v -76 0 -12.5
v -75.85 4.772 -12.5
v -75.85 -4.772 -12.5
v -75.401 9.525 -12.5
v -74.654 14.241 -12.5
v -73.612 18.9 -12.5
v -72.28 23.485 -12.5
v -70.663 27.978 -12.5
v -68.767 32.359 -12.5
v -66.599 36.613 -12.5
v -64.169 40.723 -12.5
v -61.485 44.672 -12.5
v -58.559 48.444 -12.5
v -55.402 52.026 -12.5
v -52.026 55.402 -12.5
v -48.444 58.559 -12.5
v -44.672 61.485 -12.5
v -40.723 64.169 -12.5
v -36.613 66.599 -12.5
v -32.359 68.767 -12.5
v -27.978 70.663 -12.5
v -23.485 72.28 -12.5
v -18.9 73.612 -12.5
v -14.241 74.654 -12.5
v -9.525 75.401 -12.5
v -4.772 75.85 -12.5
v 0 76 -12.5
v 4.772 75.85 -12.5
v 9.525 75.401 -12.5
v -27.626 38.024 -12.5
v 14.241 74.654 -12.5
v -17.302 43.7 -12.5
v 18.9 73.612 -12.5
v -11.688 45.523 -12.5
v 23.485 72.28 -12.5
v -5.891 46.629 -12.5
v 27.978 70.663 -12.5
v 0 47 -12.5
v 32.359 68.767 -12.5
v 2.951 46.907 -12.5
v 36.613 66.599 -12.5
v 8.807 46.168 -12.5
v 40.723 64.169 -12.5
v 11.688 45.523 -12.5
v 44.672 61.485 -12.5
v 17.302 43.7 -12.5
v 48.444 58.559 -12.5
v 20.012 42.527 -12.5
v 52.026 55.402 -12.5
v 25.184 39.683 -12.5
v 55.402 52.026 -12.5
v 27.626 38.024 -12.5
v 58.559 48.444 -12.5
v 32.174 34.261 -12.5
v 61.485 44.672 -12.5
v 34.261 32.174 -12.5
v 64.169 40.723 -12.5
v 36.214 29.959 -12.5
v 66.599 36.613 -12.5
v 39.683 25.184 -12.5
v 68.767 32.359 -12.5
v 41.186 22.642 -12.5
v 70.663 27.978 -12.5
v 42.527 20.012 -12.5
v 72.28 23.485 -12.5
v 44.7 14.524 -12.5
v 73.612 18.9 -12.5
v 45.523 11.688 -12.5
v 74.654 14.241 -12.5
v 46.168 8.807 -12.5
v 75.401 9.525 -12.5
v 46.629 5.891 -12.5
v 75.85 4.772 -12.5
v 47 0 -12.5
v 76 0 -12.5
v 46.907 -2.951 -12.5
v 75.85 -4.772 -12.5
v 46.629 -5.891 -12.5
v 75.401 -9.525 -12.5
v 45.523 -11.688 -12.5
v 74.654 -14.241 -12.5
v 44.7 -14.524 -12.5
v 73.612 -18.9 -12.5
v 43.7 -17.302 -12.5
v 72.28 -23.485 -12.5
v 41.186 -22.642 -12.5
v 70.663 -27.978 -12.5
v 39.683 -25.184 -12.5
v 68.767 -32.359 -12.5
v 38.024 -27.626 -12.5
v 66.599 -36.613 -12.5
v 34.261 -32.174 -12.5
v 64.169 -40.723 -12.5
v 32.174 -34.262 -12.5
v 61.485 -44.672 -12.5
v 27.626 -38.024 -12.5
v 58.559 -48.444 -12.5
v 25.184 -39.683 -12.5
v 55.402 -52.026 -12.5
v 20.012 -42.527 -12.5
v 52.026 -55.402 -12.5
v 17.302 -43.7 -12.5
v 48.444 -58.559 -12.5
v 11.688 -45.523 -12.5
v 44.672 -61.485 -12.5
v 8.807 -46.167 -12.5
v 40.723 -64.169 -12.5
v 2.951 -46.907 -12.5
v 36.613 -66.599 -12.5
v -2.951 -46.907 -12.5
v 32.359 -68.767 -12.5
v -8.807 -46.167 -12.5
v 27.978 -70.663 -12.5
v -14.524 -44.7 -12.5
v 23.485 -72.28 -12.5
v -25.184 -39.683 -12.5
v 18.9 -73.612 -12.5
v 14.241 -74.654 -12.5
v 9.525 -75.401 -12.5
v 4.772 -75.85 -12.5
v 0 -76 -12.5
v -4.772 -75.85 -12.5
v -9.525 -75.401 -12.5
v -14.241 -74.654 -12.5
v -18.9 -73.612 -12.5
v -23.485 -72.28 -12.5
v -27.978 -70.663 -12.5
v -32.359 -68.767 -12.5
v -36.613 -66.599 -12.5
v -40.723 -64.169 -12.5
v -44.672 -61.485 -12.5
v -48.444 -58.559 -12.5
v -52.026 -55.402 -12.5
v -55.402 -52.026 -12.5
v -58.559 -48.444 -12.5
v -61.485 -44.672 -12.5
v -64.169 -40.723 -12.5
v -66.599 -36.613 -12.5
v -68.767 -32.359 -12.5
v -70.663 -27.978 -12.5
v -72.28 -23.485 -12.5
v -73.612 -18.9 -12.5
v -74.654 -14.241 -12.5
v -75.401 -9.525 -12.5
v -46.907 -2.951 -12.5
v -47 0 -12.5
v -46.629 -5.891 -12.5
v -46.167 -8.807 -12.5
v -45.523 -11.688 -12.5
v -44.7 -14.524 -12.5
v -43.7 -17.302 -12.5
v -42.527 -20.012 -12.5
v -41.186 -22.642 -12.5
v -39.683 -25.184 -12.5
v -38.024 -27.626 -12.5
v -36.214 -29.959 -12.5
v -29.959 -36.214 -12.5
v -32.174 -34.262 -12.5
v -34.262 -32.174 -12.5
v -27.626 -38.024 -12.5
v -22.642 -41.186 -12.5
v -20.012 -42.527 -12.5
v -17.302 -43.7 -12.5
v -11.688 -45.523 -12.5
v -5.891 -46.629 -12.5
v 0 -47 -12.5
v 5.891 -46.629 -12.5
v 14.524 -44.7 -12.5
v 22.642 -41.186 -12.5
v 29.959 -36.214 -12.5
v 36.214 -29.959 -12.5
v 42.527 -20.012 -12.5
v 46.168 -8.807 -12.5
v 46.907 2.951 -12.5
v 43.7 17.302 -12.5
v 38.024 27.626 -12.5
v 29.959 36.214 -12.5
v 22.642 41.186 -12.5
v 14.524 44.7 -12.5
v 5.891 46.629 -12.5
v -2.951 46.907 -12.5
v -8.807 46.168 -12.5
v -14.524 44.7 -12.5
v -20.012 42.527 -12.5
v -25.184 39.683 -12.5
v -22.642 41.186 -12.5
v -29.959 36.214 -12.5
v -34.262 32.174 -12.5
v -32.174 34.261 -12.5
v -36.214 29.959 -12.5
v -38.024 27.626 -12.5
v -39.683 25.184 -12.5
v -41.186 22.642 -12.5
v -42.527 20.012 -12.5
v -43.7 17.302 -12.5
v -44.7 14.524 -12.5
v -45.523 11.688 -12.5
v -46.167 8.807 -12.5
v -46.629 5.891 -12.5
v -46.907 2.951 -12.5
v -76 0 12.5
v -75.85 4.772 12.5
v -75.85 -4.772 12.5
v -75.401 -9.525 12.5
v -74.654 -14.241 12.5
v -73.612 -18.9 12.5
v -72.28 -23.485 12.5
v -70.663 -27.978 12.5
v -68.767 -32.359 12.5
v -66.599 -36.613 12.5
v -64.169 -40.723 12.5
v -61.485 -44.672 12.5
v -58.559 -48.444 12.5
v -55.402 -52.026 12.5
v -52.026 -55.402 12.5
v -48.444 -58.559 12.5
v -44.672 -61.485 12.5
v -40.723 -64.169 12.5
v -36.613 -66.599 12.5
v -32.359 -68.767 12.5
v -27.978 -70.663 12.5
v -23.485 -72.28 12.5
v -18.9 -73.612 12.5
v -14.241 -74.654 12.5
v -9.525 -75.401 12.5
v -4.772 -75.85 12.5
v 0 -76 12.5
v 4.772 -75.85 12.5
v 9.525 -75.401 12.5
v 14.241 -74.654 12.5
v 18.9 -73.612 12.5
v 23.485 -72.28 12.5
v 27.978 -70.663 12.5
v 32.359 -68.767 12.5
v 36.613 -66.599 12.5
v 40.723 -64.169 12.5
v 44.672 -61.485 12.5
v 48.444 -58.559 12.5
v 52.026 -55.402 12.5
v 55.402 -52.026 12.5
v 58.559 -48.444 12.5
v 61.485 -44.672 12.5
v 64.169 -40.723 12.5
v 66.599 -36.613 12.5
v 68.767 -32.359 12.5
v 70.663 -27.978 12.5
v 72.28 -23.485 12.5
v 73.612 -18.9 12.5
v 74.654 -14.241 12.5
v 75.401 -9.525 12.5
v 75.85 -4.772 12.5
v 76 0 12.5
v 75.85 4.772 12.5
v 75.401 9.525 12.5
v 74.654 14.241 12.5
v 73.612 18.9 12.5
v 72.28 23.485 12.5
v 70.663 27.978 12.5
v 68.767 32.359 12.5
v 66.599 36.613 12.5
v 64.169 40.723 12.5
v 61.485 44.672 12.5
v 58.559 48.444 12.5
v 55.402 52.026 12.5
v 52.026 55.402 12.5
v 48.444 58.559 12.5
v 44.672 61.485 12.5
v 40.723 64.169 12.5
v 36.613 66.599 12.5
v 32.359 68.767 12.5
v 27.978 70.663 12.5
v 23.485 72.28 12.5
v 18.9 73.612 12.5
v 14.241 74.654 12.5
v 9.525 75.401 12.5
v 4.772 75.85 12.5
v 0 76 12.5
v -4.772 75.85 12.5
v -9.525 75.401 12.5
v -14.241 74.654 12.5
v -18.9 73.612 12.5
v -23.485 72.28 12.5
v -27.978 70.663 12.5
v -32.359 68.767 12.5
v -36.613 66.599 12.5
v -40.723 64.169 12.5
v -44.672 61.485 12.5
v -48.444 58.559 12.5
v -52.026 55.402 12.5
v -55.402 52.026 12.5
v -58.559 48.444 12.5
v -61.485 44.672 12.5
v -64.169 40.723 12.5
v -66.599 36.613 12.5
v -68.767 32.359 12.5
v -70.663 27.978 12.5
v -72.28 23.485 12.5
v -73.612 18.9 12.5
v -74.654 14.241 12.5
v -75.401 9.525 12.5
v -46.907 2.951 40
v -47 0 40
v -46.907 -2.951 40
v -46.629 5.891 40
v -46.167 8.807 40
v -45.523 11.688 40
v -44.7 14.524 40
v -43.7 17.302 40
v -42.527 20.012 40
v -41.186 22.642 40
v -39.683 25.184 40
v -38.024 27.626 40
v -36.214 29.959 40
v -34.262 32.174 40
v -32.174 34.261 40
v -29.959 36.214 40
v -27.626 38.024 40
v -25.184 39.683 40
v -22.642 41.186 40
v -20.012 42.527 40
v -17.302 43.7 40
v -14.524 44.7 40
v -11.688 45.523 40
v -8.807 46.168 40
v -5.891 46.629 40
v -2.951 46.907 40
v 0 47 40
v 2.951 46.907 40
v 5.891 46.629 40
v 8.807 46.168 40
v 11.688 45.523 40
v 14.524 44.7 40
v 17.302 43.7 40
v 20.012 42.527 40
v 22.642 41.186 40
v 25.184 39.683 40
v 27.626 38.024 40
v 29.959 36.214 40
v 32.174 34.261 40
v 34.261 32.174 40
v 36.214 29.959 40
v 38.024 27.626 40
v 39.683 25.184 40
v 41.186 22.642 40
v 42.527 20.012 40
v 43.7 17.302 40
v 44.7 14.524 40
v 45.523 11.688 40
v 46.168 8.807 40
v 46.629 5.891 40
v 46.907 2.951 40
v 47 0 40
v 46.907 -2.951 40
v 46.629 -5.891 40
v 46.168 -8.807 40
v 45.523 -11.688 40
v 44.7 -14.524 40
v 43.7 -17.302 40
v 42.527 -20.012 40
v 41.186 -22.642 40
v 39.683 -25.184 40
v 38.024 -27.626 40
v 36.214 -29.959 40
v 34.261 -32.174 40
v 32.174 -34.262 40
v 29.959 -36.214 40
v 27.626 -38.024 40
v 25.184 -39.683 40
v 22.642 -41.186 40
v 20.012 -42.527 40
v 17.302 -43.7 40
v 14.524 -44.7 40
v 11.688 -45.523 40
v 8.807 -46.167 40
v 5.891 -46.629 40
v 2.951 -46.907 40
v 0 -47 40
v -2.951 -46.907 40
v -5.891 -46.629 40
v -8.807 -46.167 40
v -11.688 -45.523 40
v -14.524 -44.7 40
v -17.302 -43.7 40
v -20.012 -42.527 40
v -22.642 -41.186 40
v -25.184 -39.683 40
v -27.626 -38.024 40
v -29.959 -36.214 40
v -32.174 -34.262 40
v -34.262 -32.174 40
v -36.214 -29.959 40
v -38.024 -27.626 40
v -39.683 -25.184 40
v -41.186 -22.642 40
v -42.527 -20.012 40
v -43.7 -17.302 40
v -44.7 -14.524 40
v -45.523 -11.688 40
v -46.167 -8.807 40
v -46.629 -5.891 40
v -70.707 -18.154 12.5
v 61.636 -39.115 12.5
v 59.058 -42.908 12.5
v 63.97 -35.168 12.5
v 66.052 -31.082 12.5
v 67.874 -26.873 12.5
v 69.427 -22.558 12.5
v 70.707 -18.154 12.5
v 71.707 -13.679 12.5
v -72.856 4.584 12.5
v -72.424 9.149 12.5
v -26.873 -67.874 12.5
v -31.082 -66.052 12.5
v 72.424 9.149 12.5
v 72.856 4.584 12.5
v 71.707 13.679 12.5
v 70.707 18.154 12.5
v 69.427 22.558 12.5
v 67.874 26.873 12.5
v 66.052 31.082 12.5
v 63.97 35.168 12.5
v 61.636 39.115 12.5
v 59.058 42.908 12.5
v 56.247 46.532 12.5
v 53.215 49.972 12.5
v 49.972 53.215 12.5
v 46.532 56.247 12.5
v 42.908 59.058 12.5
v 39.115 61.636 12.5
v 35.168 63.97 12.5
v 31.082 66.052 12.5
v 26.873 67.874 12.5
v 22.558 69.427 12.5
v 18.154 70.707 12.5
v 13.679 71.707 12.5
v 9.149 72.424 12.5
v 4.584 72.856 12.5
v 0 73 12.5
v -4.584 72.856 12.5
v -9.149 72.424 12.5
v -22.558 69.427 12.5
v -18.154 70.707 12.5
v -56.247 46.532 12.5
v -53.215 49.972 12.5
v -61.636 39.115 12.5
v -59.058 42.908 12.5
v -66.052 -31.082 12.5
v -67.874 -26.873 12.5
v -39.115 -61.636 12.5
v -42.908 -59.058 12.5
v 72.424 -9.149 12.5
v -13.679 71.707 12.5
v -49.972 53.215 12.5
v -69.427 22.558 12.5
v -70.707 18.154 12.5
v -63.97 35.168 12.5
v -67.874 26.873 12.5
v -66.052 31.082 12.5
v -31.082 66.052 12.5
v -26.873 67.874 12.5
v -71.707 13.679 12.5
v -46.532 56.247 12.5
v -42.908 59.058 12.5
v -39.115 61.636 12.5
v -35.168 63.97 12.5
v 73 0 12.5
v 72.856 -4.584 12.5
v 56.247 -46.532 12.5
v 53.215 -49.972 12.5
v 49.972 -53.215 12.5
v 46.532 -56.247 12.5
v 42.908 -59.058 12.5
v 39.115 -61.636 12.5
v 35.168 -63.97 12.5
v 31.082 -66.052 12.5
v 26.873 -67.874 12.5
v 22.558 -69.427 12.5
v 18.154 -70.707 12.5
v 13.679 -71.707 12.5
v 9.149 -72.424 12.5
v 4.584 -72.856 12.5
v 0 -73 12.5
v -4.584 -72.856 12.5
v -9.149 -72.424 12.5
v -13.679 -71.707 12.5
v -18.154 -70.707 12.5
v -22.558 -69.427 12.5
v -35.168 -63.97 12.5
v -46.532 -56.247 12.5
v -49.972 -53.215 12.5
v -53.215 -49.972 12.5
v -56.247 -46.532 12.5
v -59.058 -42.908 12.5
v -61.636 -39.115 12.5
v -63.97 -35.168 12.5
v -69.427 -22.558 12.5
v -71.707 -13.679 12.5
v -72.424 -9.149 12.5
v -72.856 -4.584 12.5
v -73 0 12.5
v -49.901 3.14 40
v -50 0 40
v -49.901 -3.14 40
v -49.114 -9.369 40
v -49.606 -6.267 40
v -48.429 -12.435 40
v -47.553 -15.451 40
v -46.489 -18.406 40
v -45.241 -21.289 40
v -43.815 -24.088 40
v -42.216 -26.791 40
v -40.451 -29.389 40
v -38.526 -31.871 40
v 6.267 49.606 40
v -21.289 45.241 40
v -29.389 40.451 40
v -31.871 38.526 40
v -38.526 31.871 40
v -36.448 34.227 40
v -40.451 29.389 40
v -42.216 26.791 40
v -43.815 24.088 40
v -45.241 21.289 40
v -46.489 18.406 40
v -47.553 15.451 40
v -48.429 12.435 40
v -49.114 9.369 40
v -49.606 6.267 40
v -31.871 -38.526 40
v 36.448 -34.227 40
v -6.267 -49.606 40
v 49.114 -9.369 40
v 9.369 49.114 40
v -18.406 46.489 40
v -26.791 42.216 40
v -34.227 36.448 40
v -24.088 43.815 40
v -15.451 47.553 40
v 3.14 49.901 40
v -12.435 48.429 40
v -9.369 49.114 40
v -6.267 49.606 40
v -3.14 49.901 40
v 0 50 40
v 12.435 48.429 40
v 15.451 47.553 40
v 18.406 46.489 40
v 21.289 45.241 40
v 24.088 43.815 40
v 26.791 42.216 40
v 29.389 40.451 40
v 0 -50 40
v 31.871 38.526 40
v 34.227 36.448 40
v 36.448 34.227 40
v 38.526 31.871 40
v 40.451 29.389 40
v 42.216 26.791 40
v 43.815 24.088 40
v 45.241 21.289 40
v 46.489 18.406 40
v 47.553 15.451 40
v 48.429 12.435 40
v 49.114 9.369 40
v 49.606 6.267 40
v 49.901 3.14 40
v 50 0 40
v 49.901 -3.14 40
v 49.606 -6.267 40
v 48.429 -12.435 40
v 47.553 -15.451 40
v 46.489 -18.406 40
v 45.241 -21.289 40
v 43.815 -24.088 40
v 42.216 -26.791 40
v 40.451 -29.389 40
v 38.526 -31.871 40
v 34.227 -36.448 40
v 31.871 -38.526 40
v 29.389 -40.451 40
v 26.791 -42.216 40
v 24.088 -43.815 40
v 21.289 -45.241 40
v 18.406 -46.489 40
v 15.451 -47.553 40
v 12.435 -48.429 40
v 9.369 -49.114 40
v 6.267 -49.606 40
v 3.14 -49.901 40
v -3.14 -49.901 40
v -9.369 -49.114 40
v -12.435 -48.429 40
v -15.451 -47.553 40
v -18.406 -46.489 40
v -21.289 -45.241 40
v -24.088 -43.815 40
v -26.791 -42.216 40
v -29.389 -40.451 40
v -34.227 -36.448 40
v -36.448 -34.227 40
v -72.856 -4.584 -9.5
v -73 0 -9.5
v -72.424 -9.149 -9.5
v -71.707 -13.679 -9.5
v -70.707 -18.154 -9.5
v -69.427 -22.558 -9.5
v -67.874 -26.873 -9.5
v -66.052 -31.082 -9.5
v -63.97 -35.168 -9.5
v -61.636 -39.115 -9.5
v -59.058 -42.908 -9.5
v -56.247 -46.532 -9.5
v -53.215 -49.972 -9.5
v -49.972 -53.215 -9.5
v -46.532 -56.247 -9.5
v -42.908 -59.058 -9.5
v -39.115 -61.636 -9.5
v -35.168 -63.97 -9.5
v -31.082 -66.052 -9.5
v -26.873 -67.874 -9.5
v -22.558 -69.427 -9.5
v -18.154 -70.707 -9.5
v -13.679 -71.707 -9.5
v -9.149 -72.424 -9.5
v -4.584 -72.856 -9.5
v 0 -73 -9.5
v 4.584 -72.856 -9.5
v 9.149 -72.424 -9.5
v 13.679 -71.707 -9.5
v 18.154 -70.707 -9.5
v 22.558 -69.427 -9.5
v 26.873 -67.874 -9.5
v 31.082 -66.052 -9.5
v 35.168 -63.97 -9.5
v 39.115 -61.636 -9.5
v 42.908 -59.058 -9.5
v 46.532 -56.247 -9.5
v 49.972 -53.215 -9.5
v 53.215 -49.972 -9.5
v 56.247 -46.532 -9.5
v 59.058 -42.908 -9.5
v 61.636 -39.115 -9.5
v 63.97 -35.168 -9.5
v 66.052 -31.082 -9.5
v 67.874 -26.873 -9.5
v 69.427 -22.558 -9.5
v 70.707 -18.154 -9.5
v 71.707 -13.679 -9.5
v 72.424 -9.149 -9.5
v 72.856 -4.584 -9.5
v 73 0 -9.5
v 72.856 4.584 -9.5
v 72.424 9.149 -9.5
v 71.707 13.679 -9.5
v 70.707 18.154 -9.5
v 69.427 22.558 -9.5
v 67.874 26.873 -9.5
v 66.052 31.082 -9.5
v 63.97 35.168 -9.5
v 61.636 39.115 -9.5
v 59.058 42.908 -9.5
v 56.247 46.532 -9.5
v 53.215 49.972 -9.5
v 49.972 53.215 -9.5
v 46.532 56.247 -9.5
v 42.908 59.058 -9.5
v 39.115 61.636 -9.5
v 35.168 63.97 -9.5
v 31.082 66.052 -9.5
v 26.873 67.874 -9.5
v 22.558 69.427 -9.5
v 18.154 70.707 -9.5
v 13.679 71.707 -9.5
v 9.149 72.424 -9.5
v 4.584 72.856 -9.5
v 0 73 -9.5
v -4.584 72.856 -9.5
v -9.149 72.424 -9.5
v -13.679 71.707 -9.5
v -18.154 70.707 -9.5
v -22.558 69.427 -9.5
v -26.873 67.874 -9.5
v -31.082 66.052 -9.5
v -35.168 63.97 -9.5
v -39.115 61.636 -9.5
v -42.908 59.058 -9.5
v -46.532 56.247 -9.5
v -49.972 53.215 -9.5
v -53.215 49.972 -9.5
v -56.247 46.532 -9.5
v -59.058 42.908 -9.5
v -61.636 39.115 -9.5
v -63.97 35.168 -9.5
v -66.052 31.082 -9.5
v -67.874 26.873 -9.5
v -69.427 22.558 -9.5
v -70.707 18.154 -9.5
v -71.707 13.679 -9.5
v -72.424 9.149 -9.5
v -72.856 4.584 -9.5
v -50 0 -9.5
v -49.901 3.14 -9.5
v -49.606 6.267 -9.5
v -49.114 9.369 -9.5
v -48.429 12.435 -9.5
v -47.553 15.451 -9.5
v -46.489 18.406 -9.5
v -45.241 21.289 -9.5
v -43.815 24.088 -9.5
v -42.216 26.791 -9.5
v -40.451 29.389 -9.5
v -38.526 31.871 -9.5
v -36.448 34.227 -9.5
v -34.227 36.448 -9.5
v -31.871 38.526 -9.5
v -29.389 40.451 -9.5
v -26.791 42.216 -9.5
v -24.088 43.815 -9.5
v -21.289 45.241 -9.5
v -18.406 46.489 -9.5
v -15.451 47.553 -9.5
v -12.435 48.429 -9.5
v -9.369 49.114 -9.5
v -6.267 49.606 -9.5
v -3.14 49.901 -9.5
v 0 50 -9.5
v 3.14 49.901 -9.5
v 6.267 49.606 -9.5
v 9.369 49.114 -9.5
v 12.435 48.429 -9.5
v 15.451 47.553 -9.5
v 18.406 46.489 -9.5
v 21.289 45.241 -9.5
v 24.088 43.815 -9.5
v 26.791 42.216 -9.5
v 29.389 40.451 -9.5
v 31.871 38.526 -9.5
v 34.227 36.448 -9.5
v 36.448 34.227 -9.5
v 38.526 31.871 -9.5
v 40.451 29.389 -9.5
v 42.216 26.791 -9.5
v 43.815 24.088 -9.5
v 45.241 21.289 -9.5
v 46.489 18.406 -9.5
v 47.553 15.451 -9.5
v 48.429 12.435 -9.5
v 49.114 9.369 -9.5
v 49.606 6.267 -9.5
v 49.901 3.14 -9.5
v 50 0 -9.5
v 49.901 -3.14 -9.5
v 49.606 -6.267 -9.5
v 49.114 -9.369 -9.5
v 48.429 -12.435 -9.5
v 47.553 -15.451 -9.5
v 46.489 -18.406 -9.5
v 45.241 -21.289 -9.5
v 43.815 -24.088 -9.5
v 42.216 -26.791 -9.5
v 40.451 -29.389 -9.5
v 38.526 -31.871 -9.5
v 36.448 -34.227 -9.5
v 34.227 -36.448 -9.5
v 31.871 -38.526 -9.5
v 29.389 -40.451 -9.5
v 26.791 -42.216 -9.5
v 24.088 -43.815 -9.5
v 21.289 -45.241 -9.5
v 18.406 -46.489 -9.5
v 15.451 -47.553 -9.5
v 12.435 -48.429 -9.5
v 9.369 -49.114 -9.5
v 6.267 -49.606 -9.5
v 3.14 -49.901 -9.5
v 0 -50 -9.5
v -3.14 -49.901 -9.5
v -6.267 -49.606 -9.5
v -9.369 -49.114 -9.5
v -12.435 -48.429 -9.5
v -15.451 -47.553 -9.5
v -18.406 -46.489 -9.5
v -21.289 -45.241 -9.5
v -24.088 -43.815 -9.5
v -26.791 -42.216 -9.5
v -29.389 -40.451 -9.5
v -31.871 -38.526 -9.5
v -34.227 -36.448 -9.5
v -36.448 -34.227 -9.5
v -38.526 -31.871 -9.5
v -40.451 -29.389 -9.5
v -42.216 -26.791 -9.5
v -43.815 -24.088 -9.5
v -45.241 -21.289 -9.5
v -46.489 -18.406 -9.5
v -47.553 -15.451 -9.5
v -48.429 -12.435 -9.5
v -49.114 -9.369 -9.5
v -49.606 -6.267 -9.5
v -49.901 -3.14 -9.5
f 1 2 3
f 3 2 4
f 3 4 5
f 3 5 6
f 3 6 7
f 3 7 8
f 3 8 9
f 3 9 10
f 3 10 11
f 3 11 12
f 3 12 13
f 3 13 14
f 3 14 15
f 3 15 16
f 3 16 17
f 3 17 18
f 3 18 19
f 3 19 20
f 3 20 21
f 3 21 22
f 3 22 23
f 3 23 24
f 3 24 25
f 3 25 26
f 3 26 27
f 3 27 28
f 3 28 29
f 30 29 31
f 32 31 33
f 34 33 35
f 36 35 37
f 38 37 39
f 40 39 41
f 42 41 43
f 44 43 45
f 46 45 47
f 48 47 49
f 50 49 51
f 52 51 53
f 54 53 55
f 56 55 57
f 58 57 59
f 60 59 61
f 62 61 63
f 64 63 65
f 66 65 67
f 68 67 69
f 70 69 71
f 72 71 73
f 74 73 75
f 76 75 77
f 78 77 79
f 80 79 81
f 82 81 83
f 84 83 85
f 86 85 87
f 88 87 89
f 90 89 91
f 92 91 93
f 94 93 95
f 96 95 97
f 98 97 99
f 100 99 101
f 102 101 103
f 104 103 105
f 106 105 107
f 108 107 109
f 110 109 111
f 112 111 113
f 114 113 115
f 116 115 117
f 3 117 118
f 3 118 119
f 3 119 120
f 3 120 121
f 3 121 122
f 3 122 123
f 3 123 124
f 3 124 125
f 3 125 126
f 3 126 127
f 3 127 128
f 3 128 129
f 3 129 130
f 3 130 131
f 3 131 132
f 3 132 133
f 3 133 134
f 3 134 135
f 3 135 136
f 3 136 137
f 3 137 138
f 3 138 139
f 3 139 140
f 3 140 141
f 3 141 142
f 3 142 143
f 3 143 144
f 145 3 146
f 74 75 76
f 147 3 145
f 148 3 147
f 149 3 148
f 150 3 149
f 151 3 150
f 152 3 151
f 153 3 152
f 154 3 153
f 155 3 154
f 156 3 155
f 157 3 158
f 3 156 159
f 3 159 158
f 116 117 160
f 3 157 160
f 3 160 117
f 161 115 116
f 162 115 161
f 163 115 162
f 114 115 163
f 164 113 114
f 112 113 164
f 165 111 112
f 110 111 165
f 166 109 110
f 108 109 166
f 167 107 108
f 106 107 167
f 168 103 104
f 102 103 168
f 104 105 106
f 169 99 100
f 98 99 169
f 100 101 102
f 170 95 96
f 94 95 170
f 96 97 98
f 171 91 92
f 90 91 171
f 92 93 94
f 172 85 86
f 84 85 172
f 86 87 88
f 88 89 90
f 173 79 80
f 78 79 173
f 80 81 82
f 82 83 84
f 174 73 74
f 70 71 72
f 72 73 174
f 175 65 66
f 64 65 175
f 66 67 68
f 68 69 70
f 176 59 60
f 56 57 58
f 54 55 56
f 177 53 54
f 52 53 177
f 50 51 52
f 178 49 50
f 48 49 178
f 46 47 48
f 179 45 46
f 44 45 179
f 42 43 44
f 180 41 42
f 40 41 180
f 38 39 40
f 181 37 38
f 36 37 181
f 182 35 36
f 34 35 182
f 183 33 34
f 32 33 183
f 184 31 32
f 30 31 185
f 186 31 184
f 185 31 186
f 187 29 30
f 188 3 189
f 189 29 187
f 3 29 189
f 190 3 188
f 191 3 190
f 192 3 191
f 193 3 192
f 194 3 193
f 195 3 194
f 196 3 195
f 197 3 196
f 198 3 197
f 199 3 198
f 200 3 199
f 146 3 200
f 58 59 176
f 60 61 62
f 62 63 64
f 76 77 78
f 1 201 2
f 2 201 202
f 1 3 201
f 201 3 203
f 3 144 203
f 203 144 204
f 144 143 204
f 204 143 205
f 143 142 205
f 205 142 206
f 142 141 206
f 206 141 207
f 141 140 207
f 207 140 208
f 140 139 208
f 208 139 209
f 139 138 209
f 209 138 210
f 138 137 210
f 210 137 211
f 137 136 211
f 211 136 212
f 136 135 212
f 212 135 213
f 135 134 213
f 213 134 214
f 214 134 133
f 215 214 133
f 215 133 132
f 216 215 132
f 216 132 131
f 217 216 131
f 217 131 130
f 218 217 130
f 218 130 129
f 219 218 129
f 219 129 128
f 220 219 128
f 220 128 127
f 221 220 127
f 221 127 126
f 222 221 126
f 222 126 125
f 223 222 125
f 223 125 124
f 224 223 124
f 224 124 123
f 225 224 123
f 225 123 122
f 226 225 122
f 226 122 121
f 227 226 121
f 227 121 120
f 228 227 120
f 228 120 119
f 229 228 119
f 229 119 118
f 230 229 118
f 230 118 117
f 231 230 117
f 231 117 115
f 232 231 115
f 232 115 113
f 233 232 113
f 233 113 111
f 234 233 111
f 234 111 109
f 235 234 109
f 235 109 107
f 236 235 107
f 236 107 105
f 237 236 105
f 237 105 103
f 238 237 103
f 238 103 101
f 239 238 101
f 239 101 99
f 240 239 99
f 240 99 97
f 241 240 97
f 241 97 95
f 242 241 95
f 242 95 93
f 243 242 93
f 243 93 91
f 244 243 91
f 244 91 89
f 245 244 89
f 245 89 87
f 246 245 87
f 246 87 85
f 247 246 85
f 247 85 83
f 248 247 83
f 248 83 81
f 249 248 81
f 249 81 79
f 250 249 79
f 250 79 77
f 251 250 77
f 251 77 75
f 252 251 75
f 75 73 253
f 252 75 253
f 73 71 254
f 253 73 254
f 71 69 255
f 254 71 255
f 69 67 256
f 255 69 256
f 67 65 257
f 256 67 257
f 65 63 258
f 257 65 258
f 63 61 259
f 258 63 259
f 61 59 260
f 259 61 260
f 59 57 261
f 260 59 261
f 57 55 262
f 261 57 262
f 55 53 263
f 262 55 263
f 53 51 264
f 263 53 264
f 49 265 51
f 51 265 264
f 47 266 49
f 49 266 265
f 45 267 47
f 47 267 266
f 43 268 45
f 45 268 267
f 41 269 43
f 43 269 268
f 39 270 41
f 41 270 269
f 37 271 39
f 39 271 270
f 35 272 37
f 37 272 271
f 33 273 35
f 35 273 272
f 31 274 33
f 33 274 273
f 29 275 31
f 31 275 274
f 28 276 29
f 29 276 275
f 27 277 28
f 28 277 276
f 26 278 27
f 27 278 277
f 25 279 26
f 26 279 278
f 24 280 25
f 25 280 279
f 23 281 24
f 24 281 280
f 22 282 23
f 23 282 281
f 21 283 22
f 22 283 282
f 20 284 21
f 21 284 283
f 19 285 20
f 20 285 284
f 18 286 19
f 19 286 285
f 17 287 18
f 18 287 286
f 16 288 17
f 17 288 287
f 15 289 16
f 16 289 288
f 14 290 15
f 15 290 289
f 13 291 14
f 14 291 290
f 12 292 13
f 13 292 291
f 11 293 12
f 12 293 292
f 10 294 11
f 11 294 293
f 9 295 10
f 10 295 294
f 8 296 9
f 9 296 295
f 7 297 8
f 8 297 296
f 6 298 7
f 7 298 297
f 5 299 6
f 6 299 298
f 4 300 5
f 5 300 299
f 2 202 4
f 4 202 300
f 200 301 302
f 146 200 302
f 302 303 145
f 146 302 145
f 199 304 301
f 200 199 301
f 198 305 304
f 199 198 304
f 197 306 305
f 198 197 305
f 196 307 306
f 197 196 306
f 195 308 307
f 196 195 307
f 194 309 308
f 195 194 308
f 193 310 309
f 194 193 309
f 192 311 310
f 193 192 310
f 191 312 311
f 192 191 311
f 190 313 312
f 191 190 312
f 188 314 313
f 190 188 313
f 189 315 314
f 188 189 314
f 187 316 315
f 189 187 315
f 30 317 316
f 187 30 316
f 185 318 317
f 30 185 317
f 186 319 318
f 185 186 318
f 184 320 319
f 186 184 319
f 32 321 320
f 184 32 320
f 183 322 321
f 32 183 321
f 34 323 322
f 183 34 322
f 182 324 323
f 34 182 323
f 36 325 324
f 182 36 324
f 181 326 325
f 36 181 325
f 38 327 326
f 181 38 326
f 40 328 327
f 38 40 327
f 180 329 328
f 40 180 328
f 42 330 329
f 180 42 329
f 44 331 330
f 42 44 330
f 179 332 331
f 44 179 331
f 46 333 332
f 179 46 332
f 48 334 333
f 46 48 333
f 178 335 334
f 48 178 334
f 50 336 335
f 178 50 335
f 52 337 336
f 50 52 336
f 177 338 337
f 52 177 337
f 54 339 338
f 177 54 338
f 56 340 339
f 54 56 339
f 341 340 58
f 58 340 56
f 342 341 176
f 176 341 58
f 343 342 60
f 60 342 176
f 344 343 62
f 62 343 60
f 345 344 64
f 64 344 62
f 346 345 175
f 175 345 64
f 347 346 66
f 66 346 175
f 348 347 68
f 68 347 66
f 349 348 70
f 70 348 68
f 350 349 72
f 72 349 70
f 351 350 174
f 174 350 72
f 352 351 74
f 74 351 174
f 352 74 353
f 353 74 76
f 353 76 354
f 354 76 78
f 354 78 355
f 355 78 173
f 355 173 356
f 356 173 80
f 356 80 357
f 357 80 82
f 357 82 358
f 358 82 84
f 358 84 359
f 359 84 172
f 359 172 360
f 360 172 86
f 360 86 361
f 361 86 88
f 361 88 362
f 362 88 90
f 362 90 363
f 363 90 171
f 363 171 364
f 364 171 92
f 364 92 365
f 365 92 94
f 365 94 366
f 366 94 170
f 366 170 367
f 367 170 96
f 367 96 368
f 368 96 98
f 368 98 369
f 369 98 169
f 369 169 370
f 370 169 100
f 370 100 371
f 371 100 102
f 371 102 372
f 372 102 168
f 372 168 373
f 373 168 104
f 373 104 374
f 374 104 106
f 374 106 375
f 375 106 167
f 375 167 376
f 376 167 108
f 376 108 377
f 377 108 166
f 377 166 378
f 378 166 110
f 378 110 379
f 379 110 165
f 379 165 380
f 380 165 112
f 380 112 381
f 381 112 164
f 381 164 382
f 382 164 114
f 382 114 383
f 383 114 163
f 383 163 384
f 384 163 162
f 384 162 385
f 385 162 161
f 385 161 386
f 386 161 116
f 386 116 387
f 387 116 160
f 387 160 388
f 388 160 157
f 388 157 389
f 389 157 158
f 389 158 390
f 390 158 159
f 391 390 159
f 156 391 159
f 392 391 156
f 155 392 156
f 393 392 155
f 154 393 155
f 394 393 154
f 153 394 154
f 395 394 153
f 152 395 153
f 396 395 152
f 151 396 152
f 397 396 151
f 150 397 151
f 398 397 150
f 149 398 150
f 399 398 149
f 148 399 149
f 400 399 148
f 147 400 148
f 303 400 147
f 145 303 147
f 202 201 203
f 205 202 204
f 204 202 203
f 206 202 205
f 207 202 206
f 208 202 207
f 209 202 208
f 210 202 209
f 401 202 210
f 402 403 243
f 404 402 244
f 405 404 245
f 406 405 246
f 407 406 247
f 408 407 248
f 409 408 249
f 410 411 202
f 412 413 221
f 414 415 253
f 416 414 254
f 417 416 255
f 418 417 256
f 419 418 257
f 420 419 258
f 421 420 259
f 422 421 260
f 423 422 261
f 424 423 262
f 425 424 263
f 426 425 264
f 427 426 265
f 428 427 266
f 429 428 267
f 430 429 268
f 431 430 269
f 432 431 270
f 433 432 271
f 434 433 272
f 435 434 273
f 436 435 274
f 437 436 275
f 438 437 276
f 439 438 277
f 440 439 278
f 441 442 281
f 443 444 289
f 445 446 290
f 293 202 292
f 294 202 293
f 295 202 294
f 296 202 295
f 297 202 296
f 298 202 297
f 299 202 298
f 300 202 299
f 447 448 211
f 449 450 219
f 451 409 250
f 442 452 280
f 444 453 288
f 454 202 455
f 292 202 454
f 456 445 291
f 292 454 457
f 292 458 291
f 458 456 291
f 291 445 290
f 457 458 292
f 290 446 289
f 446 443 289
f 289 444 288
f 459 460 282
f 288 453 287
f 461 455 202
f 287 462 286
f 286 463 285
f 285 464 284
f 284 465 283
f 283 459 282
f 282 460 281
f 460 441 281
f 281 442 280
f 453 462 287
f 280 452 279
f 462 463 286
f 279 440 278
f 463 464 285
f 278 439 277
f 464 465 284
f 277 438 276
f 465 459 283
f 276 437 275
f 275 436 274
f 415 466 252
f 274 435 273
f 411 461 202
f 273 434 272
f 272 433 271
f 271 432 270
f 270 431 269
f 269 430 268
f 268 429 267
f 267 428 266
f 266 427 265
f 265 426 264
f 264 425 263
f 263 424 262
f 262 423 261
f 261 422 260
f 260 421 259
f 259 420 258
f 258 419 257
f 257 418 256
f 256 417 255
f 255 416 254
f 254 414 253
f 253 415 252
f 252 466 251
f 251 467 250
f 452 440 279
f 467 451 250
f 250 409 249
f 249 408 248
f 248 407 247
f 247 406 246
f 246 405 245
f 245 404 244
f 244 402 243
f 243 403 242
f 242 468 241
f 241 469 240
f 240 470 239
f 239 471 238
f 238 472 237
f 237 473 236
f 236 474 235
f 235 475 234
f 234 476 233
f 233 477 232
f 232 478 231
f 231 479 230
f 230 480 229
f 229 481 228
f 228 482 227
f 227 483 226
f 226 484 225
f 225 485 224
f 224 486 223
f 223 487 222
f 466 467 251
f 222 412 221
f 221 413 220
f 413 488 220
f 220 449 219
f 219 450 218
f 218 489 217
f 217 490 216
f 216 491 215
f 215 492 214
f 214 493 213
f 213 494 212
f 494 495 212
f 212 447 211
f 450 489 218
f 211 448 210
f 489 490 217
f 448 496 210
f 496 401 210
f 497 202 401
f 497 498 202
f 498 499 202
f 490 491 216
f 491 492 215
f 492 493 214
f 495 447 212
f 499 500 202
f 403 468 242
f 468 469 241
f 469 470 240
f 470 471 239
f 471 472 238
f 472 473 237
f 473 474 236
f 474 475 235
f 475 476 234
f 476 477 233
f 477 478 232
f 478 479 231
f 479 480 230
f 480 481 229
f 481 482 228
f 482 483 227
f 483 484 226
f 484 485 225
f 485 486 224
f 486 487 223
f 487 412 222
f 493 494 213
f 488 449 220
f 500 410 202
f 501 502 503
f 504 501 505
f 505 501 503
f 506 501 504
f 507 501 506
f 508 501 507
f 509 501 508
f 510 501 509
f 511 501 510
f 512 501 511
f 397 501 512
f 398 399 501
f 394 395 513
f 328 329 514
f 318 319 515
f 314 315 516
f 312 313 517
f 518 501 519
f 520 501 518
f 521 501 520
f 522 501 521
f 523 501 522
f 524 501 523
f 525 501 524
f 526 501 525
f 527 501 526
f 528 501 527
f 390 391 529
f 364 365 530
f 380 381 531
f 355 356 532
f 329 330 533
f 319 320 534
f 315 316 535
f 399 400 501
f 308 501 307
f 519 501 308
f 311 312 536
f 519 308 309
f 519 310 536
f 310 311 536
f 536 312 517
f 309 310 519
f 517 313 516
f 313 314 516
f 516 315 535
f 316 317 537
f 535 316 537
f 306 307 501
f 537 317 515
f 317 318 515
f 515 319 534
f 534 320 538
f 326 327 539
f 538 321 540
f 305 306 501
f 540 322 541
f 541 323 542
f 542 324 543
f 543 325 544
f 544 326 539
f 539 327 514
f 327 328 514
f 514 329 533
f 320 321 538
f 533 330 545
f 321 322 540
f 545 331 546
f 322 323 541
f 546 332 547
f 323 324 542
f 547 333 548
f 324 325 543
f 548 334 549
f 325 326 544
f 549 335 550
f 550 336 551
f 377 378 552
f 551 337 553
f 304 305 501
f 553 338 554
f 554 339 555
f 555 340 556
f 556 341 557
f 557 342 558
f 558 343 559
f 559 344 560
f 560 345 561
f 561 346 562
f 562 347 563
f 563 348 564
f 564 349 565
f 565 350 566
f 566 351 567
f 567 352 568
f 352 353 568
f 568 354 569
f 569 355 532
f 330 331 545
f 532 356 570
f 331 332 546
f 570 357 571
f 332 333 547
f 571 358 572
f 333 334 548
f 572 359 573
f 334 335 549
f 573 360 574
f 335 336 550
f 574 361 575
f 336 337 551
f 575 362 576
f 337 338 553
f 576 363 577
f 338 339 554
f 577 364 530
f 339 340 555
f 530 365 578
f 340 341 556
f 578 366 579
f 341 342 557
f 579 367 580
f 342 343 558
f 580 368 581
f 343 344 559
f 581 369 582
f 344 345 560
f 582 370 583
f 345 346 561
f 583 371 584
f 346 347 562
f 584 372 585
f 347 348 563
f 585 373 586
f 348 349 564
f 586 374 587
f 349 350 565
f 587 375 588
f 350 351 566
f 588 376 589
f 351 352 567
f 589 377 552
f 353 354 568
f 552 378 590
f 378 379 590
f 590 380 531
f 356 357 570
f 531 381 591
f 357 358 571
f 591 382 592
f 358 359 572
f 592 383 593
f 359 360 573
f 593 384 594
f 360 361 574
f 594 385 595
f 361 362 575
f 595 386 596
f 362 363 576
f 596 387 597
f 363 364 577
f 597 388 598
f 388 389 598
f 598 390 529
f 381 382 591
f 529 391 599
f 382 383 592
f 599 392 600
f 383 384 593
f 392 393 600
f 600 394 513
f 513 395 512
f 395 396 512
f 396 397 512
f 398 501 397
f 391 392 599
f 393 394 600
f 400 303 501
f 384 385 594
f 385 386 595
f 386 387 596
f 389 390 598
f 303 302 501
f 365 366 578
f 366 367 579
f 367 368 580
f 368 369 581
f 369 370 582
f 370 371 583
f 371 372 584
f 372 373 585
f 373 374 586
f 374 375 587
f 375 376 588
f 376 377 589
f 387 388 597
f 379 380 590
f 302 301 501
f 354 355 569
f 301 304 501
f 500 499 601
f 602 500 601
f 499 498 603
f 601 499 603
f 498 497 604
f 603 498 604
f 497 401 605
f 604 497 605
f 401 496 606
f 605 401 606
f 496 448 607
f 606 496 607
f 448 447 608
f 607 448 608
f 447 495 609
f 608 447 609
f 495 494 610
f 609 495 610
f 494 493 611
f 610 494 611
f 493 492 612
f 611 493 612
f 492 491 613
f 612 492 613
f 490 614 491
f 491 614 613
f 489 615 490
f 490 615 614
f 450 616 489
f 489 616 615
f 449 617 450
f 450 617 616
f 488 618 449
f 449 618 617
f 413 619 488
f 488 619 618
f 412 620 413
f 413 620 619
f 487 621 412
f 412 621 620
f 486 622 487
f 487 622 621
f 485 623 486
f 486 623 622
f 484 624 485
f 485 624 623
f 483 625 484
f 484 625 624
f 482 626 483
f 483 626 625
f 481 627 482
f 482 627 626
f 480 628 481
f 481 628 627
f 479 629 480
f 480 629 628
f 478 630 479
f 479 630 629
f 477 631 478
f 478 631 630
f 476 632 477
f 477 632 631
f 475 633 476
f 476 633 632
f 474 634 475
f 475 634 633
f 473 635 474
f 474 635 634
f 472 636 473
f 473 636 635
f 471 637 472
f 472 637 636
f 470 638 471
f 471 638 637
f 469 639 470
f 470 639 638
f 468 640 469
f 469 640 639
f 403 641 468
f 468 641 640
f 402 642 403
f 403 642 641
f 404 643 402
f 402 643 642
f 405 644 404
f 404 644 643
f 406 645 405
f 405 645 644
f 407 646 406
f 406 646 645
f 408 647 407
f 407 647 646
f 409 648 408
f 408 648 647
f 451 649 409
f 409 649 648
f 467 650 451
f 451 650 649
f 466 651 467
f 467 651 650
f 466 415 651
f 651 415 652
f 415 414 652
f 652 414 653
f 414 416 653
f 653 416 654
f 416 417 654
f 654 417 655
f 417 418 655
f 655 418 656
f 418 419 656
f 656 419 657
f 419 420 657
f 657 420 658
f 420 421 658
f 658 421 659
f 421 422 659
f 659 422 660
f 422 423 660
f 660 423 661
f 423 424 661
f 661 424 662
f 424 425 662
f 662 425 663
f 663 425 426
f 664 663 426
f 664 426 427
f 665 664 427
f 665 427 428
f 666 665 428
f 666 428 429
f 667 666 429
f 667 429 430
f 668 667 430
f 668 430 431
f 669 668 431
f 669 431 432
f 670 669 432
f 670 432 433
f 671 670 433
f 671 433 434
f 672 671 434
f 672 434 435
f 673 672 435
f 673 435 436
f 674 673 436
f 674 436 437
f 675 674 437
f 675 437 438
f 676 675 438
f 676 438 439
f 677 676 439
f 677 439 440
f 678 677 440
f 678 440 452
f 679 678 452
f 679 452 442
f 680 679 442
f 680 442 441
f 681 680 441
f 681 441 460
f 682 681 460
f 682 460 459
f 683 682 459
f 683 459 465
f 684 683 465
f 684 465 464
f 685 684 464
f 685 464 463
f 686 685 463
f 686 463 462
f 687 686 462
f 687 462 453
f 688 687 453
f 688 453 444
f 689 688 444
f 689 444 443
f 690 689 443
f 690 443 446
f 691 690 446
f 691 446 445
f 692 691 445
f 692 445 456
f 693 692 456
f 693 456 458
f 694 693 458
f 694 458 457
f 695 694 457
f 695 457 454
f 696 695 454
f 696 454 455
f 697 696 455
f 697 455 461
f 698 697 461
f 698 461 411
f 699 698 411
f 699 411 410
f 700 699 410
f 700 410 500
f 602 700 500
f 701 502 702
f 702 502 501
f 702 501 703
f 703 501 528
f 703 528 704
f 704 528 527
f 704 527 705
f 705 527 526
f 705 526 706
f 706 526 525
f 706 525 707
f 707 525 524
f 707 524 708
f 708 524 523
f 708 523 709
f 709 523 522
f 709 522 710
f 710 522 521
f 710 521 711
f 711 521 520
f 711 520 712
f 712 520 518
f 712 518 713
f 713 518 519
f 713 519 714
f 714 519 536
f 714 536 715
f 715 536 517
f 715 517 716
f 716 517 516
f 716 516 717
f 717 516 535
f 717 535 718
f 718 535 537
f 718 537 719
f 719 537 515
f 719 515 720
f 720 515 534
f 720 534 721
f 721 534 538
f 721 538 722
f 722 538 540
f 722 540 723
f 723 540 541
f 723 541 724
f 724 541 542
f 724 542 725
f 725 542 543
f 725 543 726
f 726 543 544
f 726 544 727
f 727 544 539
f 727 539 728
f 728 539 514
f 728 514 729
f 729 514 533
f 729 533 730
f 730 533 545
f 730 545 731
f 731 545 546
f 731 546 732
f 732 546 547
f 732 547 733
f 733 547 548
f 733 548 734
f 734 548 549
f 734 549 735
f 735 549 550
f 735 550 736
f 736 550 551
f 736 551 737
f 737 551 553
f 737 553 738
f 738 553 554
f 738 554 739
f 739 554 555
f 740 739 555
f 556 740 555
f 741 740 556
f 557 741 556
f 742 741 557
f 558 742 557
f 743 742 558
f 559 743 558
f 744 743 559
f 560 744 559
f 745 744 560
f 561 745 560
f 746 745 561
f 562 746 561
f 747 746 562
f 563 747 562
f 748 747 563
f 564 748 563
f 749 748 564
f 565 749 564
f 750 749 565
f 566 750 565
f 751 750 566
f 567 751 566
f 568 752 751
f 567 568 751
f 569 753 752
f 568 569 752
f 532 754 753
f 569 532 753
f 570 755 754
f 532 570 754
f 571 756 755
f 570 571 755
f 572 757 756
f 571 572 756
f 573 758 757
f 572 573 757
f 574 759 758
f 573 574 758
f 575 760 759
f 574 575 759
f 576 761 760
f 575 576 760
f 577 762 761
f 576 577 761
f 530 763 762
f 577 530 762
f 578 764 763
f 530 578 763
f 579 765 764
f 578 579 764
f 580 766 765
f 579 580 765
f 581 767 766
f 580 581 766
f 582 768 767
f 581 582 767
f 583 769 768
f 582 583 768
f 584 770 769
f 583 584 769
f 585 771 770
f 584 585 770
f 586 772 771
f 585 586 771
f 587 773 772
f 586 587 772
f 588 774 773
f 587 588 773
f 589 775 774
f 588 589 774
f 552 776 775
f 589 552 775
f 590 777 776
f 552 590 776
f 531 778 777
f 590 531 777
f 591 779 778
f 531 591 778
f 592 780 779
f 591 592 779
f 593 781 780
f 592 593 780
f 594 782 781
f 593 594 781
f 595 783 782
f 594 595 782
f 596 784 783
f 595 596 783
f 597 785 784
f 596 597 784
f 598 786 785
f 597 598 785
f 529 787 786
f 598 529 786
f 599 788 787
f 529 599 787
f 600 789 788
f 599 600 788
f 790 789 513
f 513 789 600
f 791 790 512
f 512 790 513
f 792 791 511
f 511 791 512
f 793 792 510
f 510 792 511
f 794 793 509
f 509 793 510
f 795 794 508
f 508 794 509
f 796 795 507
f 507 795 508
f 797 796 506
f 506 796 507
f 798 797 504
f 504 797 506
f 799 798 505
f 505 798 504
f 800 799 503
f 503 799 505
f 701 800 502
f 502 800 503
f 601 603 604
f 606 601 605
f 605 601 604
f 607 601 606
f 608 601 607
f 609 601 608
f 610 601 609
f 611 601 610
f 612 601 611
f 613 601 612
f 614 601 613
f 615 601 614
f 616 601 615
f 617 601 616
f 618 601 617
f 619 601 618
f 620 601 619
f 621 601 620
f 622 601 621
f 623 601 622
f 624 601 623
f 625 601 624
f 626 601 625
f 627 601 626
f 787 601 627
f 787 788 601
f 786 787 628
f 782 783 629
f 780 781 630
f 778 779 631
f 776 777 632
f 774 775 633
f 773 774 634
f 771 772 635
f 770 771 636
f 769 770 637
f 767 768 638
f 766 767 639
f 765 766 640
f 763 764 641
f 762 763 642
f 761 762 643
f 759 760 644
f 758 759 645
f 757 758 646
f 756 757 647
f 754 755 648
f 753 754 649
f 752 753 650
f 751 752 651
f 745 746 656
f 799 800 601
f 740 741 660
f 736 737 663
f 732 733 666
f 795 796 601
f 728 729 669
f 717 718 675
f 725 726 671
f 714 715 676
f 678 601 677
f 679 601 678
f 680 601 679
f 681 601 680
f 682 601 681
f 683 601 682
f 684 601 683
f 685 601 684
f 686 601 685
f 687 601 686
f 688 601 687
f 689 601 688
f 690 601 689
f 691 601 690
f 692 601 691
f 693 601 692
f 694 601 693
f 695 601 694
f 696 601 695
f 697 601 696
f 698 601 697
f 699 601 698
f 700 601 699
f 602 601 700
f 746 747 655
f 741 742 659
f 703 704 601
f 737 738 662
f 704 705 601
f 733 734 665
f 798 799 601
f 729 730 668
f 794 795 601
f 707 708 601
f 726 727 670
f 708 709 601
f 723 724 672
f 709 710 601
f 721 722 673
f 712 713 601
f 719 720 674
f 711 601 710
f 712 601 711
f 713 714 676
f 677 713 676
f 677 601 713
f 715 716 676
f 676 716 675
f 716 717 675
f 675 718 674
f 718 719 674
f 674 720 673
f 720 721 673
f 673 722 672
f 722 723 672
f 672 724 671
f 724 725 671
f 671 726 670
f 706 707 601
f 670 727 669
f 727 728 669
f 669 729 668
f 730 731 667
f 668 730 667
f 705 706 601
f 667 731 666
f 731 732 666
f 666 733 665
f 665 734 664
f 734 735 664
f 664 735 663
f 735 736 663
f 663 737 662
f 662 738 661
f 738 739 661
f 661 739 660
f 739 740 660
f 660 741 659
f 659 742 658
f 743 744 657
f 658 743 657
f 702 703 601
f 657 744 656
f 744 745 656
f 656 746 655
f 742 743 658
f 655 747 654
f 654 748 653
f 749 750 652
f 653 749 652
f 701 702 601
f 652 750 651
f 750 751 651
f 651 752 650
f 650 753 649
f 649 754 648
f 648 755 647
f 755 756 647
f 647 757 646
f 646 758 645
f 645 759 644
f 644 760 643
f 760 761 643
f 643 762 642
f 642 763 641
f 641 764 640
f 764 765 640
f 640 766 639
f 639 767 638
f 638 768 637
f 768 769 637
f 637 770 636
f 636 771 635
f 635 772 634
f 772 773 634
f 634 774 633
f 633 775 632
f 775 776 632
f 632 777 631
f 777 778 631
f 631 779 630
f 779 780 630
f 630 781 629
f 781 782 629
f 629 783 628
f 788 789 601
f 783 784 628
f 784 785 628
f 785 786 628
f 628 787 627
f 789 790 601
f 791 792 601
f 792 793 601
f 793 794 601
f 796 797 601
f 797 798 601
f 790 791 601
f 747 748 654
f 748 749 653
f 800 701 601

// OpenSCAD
difference()
{
union()
{
difference()
{
cylinder(r=152/2,h=25,center=true,$fn=100);
translate([0,0,3])
cylinder(r=146/2,h=25,center=true,$fn=100);
}
translate([0,0,15])
cylinder(r=100/2,h=50,center=true,$fn=100);
}
cylinder(r=94/2,h=100,center=true,$fn=100);
}
